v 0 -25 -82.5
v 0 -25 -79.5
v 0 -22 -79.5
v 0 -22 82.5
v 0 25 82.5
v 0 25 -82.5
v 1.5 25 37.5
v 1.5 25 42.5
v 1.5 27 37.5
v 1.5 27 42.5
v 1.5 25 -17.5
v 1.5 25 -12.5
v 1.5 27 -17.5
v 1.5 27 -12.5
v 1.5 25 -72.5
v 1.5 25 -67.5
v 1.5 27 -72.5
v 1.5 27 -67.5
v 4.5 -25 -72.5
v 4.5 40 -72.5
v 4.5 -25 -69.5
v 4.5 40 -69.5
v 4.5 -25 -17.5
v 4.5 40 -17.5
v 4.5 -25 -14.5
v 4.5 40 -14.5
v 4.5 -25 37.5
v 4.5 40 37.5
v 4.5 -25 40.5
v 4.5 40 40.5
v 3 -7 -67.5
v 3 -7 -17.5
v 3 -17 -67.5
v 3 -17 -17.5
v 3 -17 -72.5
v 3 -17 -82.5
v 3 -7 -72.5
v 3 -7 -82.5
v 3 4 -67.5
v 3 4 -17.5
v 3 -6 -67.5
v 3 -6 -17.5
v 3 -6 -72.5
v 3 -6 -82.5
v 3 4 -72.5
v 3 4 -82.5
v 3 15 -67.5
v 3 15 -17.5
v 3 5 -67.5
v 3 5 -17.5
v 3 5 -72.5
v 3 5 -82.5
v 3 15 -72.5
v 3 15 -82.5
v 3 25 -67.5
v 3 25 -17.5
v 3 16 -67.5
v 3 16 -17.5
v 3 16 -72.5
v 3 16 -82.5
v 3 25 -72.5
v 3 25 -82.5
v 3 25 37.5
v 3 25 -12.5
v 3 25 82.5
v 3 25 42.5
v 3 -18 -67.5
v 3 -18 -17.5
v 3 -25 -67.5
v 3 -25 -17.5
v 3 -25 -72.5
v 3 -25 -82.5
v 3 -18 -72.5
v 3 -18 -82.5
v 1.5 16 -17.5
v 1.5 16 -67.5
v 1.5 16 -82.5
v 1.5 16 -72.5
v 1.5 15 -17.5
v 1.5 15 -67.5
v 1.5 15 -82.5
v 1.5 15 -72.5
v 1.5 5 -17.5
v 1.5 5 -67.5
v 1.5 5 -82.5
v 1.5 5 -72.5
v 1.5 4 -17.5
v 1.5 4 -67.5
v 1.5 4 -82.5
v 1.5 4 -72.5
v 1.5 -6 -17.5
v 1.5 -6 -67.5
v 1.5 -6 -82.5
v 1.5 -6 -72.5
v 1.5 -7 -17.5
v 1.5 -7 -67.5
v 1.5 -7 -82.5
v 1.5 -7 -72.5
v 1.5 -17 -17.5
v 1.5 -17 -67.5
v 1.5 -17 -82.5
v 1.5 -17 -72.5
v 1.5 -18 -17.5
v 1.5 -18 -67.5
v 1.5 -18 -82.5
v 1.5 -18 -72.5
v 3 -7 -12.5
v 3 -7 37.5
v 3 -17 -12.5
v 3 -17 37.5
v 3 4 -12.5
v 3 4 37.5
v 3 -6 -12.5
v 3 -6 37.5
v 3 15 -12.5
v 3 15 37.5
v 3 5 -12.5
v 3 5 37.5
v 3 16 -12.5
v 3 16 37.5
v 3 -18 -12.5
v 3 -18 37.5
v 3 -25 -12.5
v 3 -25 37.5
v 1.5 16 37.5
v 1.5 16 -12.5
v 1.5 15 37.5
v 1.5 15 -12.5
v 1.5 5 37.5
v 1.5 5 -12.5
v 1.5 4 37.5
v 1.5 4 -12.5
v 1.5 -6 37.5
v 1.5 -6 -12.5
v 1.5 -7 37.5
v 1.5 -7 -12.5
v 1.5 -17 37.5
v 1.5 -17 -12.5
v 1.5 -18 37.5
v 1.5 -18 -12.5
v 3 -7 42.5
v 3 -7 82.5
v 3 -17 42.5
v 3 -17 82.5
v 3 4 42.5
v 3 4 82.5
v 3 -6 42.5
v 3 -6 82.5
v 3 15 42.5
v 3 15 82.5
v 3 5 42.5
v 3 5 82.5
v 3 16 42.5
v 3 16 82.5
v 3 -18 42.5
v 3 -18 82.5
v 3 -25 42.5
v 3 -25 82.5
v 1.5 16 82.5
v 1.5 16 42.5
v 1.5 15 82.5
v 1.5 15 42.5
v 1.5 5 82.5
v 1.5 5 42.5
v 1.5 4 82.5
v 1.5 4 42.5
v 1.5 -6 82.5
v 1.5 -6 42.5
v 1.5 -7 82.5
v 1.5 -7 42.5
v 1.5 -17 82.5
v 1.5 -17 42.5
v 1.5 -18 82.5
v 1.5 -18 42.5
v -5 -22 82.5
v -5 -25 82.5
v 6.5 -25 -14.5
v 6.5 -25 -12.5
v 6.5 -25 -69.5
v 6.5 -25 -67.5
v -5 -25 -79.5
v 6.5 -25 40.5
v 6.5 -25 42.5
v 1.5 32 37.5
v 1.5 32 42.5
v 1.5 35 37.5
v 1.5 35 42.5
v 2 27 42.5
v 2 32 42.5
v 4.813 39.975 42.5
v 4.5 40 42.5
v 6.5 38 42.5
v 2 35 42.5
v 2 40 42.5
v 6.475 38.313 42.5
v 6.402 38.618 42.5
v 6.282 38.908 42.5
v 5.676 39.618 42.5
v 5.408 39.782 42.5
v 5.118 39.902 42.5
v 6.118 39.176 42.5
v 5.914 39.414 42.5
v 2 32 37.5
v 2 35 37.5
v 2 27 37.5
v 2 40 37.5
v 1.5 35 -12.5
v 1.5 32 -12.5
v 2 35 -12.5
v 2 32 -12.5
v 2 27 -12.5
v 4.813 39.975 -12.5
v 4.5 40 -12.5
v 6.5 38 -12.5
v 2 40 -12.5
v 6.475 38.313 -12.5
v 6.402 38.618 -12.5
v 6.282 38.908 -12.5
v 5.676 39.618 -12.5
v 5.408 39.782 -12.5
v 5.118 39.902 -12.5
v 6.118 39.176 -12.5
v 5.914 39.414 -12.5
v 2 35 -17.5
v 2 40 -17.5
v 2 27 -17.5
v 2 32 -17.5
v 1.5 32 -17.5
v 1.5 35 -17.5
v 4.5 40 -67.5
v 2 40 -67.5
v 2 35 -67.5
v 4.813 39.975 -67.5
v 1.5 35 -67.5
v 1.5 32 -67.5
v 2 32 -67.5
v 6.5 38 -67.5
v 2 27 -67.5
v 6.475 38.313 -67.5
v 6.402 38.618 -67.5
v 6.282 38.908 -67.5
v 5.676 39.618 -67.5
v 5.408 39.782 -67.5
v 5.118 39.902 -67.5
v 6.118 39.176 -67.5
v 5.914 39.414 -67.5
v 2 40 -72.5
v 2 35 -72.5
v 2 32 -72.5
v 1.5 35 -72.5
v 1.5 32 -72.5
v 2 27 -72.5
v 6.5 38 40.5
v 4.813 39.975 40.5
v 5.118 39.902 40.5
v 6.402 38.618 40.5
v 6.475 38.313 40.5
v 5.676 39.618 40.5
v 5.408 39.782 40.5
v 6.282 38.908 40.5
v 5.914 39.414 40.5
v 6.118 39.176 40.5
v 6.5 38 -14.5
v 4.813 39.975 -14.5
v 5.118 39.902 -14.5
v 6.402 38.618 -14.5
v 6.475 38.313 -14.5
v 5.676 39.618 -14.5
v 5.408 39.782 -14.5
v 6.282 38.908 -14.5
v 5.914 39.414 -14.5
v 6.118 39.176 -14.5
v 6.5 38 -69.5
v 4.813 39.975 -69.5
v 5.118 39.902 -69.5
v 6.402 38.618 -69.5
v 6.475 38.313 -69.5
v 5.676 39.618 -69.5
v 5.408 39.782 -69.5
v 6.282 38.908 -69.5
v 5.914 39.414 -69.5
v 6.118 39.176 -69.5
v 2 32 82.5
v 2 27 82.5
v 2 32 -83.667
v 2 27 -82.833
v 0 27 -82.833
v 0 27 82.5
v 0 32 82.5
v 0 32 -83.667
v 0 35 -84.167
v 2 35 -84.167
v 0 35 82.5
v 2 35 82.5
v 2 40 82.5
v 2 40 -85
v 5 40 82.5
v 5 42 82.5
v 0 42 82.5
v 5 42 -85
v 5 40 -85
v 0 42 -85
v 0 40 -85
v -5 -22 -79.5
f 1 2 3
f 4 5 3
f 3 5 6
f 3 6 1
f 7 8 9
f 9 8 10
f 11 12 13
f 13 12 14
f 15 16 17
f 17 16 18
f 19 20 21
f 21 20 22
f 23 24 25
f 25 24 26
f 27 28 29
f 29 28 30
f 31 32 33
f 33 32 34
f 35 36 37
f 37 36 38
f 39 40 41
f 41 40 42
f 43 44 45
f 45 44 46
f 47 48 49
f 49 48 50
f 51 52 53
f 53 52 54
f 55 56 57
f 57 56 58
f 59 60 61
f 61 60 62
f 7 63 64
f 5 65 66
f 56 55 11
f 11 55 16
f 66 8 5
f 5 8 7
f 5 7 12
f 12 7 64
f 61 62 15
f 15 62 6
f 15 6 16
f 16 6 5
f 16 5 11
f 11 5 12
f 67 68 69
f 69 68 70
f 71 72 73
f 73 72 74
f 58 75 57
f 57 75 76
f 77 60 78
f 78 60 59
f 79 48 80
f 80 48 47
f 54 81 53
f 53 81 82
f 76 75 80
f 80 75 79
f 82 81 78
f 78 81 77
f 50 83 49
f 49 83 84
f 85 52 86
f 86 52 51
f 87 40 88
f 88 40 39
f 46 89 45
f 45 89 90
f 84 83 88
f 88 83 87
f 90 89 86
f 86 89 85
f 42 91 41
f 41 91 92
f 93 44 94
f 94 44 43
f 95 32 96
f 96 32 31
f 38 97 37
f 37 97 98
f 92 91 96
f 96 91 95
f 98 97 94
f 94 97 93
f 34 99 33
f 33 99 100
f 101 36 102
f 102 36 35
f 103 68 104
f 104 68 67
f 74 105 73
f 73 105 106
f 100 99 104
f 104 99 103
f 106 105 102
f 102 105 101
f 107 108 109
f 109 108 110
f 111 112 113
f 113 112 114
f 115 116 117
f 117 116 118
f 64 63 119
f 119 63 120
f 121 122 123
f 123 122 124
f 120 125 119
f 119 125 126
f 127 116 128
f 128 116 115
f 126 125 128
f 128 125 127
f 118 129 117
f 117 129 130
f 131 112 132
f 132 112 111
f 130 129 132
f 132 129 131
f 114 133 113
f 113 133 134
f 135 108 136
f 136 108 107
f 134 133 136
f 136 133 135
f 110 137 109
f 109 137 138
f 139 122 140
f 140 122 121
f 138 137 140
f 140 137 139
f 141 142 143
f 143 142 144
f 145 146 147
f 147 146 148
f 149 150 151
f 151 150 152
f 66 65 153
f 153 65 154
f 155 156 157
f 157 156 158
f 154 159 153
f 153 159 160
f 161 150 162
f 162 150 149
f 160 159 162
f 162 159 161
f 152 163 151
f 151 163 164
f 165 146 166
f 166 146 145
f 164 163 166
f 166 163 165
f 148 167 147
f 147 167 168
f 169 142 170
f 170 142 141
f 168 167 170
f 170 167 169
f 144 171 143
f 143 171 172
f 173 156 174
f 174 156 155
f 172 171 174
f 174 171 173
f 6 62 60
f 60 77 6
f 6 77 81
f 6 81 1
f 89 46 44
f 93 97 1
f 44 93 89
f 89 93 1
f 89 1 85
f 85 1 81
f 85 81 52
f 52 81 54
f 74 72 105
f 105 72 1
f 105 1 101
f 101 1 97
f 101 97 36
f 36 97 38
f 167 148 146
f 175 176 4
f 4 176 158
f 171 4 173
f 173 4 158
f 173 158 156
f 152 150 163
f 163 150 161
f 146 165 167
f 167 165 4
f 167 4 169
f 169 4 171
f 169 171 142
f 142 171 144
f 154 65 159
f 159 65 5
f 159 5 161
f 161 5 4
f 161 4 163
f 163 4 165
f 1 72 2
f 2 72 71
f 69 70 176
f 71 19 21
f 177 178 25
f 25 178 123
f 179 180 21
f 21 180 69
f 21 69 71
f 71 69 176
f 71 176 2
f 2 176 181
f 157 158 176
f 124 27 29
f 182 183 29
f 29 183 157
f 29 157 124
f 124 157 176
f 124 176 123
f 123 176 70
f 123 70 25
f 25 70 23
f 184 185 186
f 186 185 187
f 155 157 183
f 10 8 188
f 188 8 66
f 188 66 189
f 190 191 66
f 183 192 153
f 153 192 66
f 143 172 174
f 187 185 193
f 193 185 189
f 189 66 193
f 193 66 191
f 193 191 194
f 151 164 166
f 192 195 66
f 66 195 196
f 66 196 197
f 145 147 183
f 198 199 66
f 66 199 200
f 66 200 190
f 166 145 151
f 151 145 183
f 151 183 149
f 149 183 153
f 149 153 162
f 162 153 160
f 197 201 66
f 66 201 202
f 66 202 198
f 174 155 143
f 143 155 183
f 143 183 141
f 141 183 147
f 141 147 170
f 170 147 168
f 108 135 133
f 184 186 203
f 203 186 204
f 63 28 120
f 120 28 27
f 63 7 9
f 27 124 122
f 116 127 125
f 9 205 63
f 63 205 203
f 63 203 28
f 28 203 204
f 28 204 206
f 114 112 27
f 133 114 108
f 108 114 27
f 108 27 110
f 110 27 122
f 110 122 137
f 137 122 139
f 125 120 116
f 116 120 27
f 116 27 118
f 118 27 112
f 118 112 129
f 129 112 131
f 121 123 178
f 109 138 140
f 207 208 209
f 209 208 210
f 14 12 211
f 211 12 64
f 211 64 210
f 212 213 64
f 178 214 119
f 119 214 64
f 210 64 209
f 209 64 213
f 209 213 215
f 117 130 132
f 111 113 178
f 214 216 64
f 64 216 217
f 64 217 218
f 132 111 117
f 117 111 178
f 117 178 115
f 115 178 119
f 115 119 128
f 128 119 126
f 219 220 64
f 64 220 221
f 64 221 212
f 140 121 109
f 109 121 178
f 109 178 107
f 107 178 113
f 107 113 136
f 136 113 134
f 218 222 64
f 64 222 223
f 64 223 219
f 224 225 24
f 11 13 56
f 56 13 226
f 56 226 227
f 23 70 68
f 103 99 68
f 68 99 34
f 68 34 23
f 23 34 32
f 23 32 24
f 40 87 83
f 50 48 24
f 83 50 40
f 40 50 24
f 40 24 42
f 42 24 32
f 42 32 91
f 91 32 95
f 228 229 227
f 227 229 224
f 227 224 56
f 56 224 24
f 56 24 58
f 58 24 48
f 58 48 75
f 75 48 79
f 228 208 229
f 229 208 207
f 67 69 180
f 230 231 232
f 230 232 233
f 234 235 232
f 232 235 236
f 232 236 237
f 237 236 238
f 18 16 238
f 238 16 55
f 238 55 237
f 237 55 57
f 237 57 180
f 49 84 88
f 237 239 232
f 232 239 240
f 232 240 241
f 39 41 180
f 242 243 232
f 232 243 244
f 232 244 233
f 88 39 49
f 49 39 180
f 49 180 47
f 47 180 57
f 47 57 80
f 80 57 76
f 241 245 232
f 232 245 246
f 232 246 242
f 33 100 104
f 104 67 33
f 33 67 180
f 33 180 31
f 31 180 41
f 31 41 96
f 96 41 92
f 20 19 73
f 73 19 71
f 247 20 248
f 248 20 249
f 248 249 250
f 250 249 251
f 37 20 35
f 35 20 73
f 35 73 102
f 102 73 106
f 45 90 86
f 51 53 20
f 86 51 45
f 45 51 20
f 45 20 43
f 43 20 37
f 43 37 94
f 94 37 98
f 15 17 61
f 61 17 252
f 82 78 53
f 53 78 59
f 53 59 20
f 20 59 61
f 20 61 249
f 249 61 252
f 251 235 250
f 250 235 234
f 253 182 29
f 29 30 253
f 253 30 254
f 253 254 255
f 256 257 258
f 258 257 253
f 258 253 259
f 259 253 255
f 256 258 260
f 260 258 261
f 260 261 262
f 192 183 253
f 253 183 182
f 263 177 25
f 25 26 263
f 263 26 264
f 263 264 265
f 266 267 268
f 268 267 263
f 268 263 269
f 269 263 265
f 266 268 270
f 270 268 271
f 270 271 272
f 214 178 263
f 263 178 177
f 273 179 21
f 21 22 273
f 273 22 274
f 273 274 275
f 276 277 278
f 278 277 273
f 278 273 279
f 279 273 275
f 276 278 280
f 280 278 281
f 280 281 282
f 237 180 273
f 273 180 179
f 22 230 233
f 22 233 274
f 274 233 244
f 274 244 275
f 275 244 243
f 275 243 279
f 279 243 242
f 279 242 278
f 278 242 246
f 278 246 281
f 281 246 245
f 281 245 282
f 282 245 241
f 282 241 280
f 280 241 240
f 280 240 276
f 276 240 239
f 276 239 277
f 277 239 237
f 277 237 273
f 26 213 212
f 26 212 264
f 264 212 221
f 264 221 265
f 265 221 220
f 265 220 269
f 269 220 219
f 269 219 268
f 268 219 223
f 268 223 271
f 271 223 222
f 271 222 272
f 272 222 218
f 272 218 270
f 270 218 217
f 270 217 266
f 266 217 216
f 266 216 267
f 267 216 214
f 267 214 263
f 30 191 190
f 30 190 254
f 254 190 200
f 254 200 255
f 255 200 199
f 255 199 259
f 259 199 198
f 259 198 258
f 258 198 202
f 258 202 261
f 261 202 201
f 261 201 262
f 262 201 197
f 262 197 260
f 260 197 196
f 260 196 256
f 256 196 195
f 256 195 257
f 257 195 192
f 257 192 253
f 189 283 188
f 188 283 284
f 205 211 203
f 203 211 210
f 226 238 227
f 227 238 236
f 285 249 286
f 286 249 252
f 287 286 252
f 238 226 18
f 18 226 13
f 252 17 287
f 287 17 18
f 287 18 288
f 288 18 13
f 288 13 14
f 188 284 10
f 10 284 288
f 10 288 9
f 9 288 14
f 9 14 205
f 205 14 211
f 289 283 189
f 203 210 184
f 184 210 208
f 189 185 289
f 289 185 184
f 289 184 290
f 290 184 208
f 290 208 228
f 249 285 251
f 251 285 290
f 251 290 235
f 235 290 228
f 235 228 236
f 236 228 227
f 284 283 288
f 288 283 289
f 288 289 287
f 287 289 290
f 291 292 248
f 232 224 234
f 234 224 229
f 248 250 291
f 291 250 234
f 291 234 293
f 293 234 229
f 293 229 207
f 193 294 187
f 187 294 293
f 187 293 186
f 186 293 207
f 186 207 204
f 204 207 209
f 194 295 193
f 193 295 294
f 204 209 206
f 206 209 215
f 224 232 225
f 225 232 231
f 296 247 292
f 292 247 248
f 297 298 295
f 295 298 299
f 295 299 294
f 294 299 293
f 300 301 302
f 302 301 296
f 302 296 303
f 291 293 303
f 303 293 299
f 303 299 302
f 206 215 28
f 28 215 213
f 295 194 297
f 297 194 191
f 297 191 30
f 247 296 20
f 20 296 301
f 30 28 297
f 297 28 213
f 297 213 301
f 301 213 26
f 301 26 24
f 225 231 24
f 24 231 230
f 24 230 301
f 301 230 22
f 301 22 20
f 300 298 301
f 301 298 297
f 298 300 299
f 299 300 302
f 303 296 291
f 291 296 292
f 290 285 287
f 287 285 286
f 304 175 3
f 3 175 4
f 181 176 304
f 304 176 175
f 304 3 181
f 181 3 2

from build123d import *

# Parameters (mm, degrees)
SKETCH1_W           = 165
SKETCH1_H           = 50
BOSS_EXTRUDE1_DEPTH = 3
SKETCH3_W           = 165
SKETCH3_H           = 1
CUT_EXTRUDE1_DEPTH  = 1.5
SKETCH4_W           = 5
SKETCH4_H           = 65
BOSS_EXTRUDE2_DEPTH = 1.5
SKETCH5_W           = 2
SKETCH5_H           = 65
BOSS_EXTRUDE3_DEPTH = 2
FILLET1_R           = 2
SKETCH8_W           = 167.5
SKETCH8_H           = 5
BOSS_EXTRUDE4_DEPTH = 2
SKETCH6_W           = 5
SKETCH6_H           = 167.5
BOSS_EXTRUDE5_DEPTH = 2
CUT_EXTRUDE2_DEPTH  = 3
SKETCH10_W          = 165
SKETCH10_H          = 3
BOSS_EXTRUDE6_DEPTH = 5
SKETCH11_W          = 5
SKETCH11_H          = 3
CUT_EXTRUDE3_DEPTH  = 3


with BuildPart() as part:
    # Sketch1 → Boss-Extrude1 (new body)
    with BuildSketch(Plane(origin=(0, 0, 0), x_dir=(0, 0, -1), z_dir=(1, 0, 0))):
        Rectangle(SKETCH1_W, SKETCH1_H)
    extrude(amount=BOSS_EXTRUDE1_DEPTH)

    # Sketch3 → Cut-Extrude1 (cut)
    with BuildSketch(Plane(origin=(3, 0, 0), x_dir=(0, 0, -1), z_dir=(1, 0, 0))):
        with Locations((0, -17.5)):
            Rectangle(SKETCH3_W, SKETCH3_H)
        with Locations((0, -6.5)):
            Rectangle(SKETCH3_W, SKETCH3_H)
        with Locations((0, 4.5)):
            Rectangle(SKETCH3_W, SKETCH3_H)
        with Locations((0, 15.5)):
            Rectangle(SKETCH3_W, SKETCH3_H)
    extrude(amount=-CUT_EXTRUDE1_DEPTH, mode=Mode.SUBTRACT)

    # Sketch4 → Boss-Extrude2 (add, symmetric)
    with BuildSketch(Plane(origin=(3, 0, 0), x_dir=(0, 0, -1), z_dir=(1, 0, 0))):
        with Locations((-40, 7.5)):
            Rectangle(SKETCH4_W, SKETCH4_H)
        with Locations((15, 7.5)):
            Rectangle(SKETCH4_W, SKETCH4_H)
        with Locations((70, 7.5)):
            Rectangle(SKETCH4_W, SKETCH4_H)
    extrude(amount=BOSS_EXTRUDE2_DEPTH, both=True)

    # Sketch5 → Boss-Extrude3 (add)
    with BuildSketch(Plane(origin=(4.5, 0, 0), x_dir=(0, 0, -1), z_dir=(1, 0, 0))):
        with Locations((-41.5, 7.5)):
            Rectangle(SKETCH5_W, SKETCH5_H)
        with Locations((13.5, 7.5)):
            Rectangle(SKETCH5_W, SKETCH5_H)
        with Locations((68.5, 7.5)):
            Rectangle(SKETCH5_W, SKETCH5_H)
    extrude(amount=BOSS_EXTRUDE3_DEPTH)

    # Fillet1
    fillet1_edges = [part.edges().sort_by_distance(p)[0] for p in [
        (6.5, 40, -68.5),
        (6.5, 40, -13.5),
        (6.5, 40, 41.5),
    ]]
    fillet(fillet1_edges, radius=FILLET1_R)

    # Sketch8 → Boss-Extrude4 (add)
    with BuildSketch(Plane.ZY):
        with Locations((-1.25, 37.5)):
            Rectangle(SKETCH8_W, SKETCH8_H)
        with Locations((-1.25, 29.5)):
            Rectangle(SKETCH8_W, SKETCH8_H)
    extrude(amount=-BOSS_EXTRUDE4_DEPTH)

    # Sketch6 → Boss-Extrude5 (add)
    with BuildSketch(Plane(origin=(0, 40, 0), x_dir=(1, 0, 0), z_dir=(0, 1, 0))):
        with Locations((2.5, 1.25)):
            Rectangle(SKETCH6_W, SKETCH6_H)
    extrude(amount=BOSS_EXTRUDE5_DEPTH)

    # Sketch9 → Cut-Extrude2 (cut)
    with BuildSketch(Plane(origin=(3, 0, 0), x_dir=(0, 0, -1), z_dir=(1, 0, 0))):
        Polygon((82.5, 25), (85, 40), (86.823403956, 40), (86.823403956, 25), align=None)
    extrude(amount=-CUT_EXTRUDE2_DEPTH, mode=Mode.SUBTRACT)

    # Sketch10 → Boss-Extrude6 (add)
    with BuildSketch(Plane.ZY):
        with Locations((0, -23.5)):
            Rectangle(SKETCH10_W, SKETCH10_H)
    extrude(amount=BOSS_EXTRUDE6_DEPTH)

    # Sketch11 → Cut-Extrude3 (cut)
    with BuildSketch(Plane(origin=(0, -22, 0), x_dir=(1, 0, 0), z_dir=(0, 1, 0))):
        with Locations((-2.5, 81)):
            Rectangle(SKETCH11_W, SKETCH11_H)
    extrude(amount=-CUT_EXTRUDE3_DEPTH, mode=Mode.SUBTRACT)


solid = part.part
